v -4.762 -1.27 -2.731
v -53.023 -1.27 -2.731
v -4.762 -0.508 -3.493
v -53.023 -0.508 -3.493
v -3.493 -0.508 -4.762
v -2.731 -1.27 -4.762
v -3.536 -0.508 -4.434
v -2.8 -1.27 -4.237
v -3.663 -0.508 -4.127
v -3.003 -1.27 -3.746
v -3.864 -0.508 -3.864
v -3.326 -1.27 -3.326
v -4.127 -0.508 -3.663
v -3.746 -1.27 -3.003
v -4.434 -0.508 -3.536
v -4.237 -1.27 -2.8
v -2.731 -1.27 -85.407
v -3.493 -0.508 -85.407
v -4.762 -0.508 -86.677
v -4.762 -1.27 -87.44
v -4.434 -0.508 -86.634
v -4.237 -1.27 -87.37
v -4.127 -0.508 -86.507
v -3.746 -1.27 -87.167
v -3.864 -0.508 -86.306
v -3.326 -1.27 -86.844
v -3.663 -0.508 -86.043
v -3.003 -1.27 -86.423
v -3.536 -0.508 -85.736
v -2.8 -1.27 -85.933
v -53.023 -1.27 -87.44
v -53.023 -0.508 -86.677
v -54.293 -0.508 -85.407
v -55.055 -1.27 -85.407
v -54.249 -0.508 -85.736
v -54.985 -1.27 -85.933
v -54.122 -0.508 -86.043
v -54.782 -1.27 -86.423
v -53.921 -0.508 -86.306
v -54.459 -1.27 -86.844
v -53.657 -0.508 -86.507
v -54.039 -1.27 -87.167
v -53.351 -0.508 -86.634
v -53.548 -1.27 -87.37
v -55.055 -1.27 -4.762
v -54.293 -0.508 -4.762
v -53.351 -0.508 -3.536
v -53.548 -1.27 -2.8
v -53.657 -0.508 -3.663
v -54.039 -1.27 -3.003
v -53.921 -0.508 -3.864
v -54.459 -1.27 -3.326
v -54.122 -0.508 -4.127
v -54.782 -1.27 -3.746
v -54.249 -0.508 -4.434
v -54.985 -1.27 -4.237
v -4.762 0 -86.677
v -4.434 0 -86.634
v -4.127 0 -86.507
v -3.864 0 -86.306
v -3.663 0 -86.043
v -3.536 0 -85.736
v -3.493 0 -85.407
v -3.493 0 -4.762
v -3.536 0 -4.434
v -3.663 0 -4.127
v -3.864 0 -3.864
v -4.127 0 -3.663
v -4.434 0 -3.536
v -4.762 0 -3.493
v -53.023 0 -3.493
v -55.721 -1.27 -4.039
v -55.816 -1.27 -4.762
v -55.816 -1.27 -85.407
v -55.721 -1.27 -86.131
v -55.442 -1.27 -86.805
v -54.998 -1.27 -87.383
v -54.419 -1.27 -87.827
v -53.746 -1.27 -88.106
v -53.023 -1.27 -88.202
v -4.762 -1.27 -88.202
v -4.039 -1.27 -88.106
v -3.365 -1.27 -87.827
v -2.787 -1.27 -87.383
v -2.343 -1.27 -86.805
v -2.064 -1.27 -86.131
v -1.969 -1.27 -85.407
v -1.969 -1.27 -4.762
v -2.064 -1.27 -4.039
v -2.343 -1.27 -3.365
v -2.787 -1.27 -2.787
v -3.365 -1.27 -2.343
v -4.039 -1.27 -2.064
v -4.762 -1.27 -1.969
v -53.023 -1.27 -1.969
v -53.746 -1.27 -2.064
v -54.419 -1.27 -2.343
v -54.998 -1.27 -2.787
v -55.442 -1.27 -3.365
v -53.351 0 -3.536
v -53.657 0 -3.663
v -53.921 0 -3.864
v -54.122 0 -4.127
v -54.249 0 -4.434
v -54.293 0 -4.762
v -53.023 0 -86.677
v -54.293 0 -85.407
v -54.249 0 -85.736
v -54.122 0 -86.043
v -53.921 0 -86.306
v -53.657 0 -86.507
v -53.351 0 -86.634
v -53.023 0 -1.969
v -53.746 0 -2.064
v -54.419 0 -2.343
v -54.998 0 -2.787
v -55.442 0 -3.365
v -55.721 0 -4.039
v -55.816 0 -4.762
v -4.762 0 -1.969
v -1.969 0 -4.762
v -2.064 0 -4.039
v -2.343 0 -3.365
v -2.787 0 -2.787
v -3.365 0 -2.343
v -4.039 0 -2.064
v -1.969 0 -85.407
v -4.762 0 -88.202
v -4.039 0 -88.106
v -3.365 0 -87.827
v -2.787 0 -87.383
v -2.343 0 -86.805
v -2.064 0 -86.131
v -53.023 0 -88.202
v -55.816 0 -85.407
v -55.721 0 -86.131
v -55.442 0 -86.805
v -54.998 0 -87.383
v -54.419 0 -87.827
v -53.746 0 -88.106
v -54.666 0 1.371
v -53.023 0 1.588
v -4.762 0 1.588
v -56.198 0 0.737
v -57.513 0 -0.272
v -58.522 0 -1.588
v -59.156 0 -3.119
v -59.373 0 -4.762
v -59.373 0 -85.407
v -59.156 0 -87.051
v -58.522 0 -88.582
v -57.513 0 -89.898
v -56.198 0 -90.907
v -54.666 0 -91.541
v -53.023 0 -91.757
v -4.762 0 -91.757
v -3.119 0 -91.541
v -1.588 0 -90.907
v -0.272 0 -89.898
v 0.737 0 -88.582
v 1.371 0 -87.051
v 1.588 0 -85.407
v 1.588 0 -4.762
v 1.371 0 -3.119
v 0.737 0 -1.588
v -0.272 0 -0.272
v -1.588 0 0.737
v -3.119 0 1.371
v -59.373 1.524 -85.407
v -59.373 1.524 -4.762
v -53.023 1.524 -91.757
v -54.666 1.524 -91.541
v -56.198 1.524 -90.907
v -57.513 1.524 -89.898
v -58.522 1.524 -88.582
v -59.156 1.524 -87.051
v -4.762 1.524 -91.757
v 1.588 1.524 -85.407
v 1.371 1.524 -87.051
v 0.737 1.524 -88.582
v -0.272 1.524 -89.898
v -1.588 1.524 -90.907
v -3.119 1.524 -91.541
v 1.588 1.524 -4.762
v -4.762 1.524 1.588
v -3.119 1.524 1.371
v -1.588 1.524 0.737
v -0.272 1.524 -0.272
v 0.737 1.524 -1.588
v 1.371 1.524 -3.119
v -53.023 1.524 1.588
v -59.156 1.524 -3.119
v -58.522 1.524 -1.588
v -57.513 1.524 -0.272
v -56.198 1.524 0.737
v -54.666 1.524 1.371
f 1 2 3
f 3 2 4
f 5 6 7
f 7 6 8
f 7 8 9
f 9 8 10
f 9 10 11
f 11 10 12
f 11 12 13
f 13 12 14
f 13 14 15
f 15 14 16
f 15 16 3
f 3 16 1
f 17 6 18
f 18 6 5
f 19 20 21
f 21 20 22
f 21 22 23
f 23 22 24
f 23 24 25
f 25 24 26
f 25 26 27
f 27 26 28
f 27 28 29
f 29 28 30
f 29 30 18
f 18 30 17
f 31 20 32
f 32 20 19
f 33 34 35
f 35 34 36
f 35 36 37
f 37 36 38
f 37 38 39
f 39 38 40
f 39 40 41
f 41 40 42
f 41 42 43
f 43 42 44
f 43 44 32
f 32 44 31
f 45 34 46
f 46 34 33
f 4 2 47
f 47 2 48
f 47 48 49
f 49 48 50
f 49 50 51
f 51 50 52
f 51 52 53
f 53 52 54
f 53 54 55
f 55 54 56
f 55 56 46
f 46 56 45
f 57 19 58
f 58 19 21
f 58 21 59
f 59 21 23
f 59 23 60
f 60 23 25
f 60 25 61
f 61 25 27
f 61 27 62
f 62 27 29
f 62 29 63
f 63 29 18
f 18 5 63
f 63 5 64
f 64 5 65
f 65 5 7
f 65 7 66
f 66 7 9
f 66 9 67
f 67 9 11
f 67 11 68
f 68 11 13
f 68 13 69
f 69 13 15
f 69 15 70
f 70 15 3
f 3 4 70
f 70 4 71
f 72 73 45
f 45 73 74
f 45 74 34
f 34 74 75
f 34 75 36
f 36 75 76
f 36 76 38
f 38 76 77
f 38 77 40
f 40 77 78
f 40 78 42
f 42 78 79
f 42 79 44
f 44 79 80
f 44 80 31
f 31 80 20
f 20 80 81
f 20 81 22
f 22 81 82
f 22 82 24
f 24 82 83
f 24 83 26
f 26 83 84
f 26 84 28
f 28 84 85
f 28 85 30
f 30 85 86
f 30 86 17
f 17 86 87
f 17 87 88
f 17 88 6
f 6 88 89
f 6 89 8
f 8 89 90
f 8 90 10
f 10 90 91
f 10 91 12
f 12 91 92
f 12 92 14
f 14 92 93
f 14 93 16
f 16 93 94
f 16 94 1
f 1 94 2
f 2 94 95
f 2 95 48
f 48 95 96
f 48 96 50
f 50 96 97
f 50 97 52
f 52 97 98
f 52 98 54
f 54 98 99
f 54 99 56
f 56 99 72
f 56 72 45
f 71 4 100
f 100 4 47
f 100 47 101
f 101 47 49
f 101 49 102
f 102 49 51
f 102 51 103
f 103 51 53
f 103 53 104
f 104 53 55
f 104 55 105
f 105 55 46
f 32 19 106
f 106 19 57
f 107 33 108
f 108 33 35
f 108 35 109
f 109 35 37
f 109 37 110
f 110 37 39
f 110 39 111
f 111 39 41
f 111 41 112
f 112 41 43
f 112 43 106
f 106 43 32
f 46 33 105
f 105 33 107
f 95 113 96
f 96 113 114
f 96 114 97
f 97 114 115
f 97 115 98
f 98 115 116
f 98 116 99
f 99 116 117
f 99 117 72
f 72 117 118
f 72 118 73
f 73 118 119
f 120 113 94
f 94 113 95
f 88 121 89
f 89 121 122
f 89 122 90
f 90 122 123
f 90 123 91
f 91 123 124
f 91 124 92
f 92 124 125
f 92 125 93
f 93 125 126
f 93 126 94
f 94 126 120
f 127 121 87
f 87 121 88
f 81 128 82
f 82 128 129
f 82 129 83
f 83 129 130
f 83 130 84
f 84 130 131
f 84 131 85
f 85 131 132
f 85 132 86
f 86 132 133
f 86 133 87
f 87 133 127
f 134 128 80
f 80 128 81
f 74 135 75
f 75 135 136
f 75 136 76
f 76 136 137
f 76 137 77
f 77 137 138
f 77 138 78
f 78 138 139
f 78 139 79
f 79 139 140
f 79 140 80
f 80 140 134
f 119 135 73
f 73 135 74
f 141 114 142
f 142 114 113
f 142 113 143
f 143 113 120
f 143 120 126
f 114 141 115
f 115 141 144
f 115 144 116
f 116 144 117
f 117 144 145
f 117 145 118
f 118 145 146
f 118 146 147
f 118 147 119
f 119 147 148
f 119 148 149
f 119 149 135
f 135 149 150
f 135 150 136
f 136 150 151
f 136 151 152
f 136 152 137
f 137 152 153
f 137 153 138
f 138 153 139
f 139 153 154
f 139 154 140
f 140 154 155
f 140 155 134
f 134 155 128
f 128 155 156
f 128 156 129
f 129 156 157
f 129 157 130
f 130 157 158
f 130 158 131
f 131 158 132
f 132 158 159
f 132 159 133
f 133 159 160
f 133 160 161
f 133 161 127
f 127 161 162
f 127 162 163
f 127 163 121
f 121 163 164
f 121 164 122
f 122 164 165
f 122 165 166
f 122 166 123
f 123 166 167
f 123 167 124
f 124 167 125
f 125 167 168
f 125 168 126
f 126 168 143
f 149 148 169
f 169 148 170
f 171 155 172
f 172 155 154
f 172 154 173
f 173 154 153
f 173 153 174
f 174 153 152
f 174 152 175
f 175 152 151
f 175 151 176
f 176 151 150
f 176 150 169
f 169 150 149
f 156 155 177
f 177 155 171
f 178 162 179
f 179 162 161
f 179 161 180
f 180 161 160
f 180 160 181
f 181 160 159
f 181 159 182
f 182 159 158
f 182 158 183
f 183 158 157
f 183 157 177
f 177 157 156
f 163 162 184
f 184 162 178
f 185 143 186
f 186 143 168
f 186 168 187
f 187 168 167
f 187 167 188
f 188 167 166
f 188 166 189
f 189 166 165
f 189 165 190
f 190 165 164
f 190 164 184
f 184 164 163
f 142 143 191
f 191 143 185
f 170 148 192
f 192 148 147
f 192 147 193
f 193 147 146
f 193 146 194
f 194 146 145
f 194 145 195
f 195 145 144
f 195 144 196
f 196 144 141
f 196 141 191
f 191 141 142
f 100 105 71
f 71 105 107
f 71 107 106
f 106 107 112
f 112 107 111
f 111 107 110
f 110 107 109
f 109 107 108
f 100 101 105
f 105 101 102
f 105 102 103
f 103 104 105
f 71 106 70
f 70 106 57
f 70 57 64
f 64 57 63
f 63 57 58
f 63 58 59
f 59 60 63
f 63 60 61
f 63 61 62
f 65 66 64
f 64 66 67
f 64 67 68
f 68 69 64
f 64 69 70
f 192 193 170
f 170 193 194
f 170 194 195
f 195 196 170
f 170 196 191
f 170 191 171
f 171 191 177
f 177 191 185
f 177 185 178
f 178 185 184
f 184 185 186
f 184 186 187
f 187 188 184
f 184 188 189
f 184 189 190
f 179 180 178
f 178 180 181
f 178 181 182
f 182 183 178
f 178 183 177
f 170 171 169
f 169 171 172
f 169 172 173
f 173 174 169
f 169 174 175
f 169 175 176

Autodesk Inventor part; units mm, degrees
ref_plane "YZ Plane" through (0, 0, 0) normal (1, 0, 0) x (0, 1, 0)
ref_plane "XZ Plane" through (0, 0, 0) normal (0, 1, 0) x (-1, 0, 0)
ref_plane "XY Plane" through (0, 0, 0) normal (0, 0, 1) x (1, 0, 0)
sketch "Sketch1" plane through (0, 0, 0) normal (0, 1, 0) x (-1, 0, 0)
  line L0 (4.7625, 0) -> (53.0225, 0)
  line L1 (57.785, -4.7625) -> (57.785, -85.4075)
  line L2 (53.0225, -90.17) -> (4.7625, -90.17)
  line L3 (0, -85.4075) -> (0, -4.7625)
  arc A0 (57.785, -4.7625) -> (53.0225, 0) centre (53.0225, -4.7625) ccw
  arc A1 (4.7625, 0) -> (0, -4.7625) centre (4.7625, -4.7625) ccw
  arc A2 (0, -85.4075) -> (4.7625, -90.17) centre (4.7625, -85.4075) ccw
  arc A3 (53.0225, -90.17) -> (57.785, -85.4075) centre (53.0225, -85.4075) ccw
  line L4 (56.1975, -85.4075) -> (56.1975, -4.7625)
  arc A4 (56.1975, -4.7625) -> (53.0225, -1.5875) centre (53.0225, -4.7625) ccw
  line L5 (53.0225, -1.5875) -> (4.7625, -1.5875)
  arc A5 (4.7625, -1.5875) -> (1.5875, -4.7625) centre (4.7625, -4.7625) ccw
  line L6 (1.5875, -4.7625) -> (1.5875, -85.4075)
  arc A6 (1.5875, -85.4075) -> (4.7625, -88.5825) centre (4.7625, -85.4075) ccw
  line L7 (4.7625, -88.5825) -> (53.0225, -88.5825)
  arc A7 (53.0225, -88.5825) -> (56.1975, -85.4075) centre (53.0225, -85.4075) ccw
  line L8 (59.3725, -85.4075) -> (59.3725, -4.7625)
  arc A8 (59.3725, -4.7625) -> (53.0225, 1.5875) centre (53.0225, -4.7625) ccw
  line L9 (53.0225, 1.5875) -> (4.7625, 1.5875)
  arc A9 (4.7625, 1.5875) -> (-1.5875, -4.7625) centre (4.7625, -4.7625) ccw
  line L10 (-1.5875, -4.7625) -> (-1.5875, -85.4075)
  arc A10 (-1.5875, -85.4075) -> (4.7625, -91.7575) centre (4.7625, -85.4075) ccw
  line L11 (4.7625, -91.7575) -> (53.0225, -91.7575)
  arc A11 (53.0225, -91.7575) -> (59.3725, -85.4075) centre (53.0225, -85.4075) ccw
  line L12 (54.2925, -4.7625) -> (54.2925, -85.4075)
  arc A12 (53.0225, -86.6775) -> (54.2925, -85.4075) centre (53.0225, -85.4075) ccw
  line L13 (53.0225, -86.6775) -> (4.7625, -86.6775)
  arc A13 (3.4925, -85.4075) -> (4.7625, -86.6775) centre (4.7625, -85.4075) ccw
  line L14 (3.4925, -85.4075) -> (3.4925, -4.7625)
  arc A14 (4.7625, -3.4925) -> (3.4925, -4.7625) centre (4.7625, -4.7625) ccw
  line L15 (4.7625, -3.4925) -> (53.0225, -3.4925)
  arc A15 (54.2925, -4.7625) -> (53.0225, -3.4925) centre (53.0225, -4.7625) ccw
  line L16 (55.8165, -4.7625) -> (55.8165, -85.4075)
  arc A16 (53.0225, -88.2015) -> (55.8165, -85.4075) centre (53.0225, -85.4075) ccw
  line L17 (53.0225, -88.2015) -> (4.7625, -88.2015)
  arc A17 (1.9685, -85.4075) -> (4.7625, -88.2015) centre (4.7625, -85.4075) ccw
  line L18 (1.9685, -85.4075) -> (1.9685, -4.7625)
  arc A18 (4.7625, -1.9685) -> (1.9685, -4.7625) centre (4.7625, -4.7625) ccw
  line L19 (4.7625, -1.9685) -> (53.0225, -1.9685)
  arc A19 (55.8165, -4.7625) -> (53.0225, -1.9685) centre (53.0225, -4.7625) ccw
  point P0 (0, 0)
  point P1 (0, 0)
  point P2 (57.785, -90.17)
  point P3 (57.785, 0)
  point P4 (0, -90.17)
  dimension "d0" = 90.17
  dimension "d1" = 57.785
  dimension "d2" = 4.7625
  dimension "d3" = 1.5875
  dimension "d4" = 1.5875
  dimension "d5" = 1.905
  dimension "d6" = 0.381
extrude "Extrusion1" add sketch "Sketch1" along normal blind 1.524 contours L0 A0 L1 A3 L2 A2 L3 A1 | A7 L7 A6 L6 A5 L5 A4 L4 | A11 L11 A10 L10 A9 L9 A8 L8 | L12 A12 L13 A13 L14 A14 L15 A15 | L16 A16 L17 A17 L18 A18 L19 A19
extrude "Extrusion2" add sketch "Sketch1" against normal blind 1.27 contours L16 A16 L17 A17 L18 A18 L19 A19
chamfer "Chamfer1" distance 0.762 angle 45 8 edges at (-28.8925, -1.27, -3.4925) (-3.8645, -1.27, -3.8645) (-3.4925, -1.27, -45.085) (-3.8645, -1.27, -86.3055) (-28.8925, -1.27, -86.6775) (-53.9205, -1.27, -86.3055) (-54.2925, -1.27, -45.085) (-53.9205, -1.27, -3.8645)
equation "\"d3\" = d4"
properties part number "BatteryCaseSide3"
